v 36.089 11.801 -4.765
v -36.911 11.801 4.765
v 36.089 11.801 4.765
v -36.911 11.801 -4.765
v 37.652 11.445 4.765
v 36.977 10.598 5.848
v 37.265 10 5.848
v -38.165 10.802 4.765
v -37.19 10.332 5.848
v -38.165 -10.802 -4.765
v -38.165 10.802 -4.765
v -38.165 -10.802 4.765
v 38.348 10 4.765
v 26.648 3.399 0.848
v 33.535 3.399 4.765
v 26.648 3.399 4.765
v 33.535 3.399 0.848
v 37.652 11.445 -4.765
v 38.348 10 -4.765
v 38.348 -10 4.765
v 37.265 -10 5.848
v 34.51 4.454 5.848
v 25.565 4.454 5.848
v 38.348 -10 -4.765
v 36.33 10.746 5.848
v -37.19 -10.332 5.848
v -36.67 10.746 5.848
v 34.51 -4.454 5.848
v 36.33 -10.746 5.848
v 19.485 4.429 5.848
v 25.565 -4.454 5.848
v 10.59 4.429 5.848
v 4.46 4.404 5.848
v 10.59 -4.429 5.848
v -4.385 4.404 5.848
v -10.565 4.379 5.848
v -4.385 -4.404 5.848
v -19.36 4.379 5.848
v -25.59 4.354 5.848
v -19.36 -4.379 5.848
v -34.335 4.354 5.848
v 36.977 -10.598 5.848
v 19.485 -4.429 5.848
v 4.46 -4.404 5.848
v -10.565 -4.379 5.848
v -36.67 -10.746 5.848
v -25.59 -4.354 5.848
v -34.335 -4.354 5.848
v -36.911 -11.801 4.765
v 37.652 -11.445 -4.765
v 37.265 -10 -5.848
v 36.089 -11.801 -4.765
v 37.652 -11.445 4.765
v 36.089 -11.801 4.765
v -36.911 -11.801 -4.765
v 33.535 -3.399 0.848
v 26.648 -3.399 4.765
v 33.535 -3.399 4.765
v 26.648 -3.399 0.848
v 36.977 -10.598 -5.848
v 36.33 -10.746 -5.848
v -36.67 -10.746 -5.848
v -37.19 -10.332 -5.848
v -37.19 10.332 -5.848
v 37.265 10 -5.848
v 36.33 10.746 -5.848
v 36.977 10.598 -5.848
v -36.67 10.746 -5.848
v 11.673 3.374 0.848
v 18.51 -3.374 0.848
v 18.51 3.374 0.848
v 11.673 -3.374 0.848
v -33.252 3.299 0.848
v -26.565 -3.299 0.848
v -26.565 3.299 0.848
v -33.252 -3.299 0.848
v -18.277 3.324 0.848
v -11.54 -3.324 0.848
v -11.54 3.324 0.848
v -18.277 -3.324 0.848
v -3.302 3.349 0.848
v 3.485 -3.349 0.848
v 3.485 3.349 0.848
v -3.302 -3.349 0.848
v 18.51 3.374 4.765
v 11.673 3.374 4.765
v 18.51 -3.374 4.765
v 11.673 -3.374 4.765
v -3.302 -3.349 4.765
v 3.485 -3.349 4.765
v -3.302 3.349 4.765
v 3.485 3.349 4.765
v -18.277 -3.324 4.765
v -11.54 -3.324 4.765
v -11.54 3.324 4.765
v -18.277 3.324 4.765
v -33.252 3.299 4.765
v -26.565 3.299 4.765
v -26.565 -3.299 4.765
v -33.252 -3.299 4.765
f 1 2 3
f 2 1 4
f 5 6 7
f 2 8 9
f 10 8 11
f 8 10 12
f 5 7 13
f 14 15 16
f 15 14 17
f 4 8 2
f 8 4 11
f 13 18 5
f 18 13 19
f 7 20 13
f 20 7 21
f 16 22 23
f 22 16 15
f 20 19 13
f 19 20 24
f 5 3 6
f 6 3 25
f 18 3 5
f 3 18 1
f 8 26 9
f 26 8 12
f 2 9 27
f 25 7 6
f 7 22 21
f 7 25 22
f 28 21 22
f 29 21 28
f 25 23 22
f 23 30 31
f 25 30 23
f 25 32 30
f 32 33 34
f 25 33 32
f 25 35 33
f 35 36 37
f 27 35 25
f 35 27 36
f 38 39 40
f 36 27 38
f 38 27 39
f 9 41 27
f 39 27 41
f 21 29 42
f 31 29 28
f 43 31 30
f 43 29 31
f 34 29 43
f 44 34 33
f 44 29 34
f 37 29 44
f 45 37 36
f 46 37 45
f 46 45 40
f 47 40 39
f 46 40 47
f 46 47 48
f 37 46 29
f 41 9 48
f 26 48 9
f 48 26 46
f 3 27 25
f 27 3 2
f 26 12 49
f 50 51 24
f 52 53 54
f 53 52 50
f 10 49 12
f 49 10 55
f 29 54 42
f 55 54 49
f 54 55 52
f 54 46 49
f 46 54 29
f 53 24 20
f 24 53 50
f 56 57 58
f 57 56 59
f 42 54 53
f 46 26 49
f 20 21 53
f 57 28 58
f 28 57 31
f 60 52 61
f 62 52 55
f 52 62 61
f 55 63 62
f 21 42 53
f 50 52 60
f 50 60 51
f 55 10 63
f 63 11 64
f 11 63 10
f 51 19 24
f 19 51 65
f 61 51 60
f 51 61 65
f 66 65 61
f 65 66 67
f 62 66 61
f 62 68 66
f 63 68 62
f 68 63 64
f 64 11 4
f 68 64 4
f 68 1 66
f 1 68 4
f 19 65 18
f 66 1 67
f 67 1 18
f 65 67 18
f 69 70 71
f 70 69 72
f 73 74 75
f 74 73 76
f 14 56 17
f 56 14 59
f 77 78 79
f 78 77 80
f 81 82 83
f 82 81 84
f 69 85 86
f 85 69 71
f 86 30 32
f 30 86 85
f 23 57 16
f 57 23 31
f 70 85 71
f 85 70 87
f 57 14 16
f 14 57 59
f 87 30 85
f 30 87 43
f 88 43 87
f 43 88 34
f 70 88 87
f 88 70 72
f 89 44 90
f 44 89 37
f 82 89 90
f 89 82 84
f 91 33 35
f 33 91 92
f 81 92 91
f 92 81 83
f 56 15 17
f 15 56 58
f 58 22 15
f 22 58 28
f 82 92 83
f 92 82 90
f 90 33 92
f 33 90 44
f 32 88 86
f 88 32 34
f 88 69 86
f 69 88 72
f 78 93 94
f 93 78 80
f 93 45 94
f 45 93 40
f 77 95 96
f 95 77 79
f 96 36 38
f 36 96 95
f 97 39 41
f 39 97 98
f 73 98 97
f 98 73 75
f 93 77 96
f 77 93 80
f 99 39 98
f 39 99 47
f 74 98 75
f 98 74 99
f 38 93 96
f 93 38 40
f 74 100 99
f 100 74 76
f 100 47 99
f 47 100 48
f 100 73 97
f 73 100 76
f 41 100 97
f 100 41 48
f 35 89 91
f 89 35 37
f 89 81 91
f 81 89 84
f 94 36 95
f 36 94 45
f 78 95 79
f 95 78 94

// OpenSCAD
// ========================================
// TOLERANCE TEST BLOCK - SQUARE
// Tests square shaft/hole fit across 5 tolerance levels
// Press the test peg into each hole to find your printer's limits
// ========================================

// === PARAMETERS ===
// Block dimensions (small for quick print)
block_l = 77;
block_w = 24;
block_h = 12;
corner_r = 2;             // corner radius (mm)

// Tolerance test setup
nominal_sq = 10;          // nominal square side length (mm)
test_gaps = [0.20, 0.25, 0.30, 0.35, 0.40];  // tolerance gaps (mm)
hole_spacing = 15;        // hole center-to-center spacing
hole_depth = 7;           // drilling depth from top

// === HELPERS ===
function hole_size(gap) = nominal_sq + gap;
function num_tests() = len(test_gaps);
function first_hole_offset() = -(num_tests() - 1) * hole_spacing / 2;

// === MODULES ===
module tolerance_block_square(l=block_l, w=block_w, h=block_h, r=corner_r) {
    minkowski() {
        difference() {
            // Main block (shrink by corner radius)
            cube([l-2*r, w-2*r, h-2*r], center=true);

            // Drill test holes at increasing tolerances
            for (i = [0 : num_tests() - 1]) {
                xpos = first_hole_offset() + i * hole_spacing;
                zpos = h/2 - hole_depth/2;
                translate([xpos, 0, zpos])
                    cube([hole_size(test_gaps[i]), hole_size(test_gaps[i]), hole_depth], center=true);
            }
        }
        sphere(r);
    }
}

// === RENDER ===
tolerance_block_square();
